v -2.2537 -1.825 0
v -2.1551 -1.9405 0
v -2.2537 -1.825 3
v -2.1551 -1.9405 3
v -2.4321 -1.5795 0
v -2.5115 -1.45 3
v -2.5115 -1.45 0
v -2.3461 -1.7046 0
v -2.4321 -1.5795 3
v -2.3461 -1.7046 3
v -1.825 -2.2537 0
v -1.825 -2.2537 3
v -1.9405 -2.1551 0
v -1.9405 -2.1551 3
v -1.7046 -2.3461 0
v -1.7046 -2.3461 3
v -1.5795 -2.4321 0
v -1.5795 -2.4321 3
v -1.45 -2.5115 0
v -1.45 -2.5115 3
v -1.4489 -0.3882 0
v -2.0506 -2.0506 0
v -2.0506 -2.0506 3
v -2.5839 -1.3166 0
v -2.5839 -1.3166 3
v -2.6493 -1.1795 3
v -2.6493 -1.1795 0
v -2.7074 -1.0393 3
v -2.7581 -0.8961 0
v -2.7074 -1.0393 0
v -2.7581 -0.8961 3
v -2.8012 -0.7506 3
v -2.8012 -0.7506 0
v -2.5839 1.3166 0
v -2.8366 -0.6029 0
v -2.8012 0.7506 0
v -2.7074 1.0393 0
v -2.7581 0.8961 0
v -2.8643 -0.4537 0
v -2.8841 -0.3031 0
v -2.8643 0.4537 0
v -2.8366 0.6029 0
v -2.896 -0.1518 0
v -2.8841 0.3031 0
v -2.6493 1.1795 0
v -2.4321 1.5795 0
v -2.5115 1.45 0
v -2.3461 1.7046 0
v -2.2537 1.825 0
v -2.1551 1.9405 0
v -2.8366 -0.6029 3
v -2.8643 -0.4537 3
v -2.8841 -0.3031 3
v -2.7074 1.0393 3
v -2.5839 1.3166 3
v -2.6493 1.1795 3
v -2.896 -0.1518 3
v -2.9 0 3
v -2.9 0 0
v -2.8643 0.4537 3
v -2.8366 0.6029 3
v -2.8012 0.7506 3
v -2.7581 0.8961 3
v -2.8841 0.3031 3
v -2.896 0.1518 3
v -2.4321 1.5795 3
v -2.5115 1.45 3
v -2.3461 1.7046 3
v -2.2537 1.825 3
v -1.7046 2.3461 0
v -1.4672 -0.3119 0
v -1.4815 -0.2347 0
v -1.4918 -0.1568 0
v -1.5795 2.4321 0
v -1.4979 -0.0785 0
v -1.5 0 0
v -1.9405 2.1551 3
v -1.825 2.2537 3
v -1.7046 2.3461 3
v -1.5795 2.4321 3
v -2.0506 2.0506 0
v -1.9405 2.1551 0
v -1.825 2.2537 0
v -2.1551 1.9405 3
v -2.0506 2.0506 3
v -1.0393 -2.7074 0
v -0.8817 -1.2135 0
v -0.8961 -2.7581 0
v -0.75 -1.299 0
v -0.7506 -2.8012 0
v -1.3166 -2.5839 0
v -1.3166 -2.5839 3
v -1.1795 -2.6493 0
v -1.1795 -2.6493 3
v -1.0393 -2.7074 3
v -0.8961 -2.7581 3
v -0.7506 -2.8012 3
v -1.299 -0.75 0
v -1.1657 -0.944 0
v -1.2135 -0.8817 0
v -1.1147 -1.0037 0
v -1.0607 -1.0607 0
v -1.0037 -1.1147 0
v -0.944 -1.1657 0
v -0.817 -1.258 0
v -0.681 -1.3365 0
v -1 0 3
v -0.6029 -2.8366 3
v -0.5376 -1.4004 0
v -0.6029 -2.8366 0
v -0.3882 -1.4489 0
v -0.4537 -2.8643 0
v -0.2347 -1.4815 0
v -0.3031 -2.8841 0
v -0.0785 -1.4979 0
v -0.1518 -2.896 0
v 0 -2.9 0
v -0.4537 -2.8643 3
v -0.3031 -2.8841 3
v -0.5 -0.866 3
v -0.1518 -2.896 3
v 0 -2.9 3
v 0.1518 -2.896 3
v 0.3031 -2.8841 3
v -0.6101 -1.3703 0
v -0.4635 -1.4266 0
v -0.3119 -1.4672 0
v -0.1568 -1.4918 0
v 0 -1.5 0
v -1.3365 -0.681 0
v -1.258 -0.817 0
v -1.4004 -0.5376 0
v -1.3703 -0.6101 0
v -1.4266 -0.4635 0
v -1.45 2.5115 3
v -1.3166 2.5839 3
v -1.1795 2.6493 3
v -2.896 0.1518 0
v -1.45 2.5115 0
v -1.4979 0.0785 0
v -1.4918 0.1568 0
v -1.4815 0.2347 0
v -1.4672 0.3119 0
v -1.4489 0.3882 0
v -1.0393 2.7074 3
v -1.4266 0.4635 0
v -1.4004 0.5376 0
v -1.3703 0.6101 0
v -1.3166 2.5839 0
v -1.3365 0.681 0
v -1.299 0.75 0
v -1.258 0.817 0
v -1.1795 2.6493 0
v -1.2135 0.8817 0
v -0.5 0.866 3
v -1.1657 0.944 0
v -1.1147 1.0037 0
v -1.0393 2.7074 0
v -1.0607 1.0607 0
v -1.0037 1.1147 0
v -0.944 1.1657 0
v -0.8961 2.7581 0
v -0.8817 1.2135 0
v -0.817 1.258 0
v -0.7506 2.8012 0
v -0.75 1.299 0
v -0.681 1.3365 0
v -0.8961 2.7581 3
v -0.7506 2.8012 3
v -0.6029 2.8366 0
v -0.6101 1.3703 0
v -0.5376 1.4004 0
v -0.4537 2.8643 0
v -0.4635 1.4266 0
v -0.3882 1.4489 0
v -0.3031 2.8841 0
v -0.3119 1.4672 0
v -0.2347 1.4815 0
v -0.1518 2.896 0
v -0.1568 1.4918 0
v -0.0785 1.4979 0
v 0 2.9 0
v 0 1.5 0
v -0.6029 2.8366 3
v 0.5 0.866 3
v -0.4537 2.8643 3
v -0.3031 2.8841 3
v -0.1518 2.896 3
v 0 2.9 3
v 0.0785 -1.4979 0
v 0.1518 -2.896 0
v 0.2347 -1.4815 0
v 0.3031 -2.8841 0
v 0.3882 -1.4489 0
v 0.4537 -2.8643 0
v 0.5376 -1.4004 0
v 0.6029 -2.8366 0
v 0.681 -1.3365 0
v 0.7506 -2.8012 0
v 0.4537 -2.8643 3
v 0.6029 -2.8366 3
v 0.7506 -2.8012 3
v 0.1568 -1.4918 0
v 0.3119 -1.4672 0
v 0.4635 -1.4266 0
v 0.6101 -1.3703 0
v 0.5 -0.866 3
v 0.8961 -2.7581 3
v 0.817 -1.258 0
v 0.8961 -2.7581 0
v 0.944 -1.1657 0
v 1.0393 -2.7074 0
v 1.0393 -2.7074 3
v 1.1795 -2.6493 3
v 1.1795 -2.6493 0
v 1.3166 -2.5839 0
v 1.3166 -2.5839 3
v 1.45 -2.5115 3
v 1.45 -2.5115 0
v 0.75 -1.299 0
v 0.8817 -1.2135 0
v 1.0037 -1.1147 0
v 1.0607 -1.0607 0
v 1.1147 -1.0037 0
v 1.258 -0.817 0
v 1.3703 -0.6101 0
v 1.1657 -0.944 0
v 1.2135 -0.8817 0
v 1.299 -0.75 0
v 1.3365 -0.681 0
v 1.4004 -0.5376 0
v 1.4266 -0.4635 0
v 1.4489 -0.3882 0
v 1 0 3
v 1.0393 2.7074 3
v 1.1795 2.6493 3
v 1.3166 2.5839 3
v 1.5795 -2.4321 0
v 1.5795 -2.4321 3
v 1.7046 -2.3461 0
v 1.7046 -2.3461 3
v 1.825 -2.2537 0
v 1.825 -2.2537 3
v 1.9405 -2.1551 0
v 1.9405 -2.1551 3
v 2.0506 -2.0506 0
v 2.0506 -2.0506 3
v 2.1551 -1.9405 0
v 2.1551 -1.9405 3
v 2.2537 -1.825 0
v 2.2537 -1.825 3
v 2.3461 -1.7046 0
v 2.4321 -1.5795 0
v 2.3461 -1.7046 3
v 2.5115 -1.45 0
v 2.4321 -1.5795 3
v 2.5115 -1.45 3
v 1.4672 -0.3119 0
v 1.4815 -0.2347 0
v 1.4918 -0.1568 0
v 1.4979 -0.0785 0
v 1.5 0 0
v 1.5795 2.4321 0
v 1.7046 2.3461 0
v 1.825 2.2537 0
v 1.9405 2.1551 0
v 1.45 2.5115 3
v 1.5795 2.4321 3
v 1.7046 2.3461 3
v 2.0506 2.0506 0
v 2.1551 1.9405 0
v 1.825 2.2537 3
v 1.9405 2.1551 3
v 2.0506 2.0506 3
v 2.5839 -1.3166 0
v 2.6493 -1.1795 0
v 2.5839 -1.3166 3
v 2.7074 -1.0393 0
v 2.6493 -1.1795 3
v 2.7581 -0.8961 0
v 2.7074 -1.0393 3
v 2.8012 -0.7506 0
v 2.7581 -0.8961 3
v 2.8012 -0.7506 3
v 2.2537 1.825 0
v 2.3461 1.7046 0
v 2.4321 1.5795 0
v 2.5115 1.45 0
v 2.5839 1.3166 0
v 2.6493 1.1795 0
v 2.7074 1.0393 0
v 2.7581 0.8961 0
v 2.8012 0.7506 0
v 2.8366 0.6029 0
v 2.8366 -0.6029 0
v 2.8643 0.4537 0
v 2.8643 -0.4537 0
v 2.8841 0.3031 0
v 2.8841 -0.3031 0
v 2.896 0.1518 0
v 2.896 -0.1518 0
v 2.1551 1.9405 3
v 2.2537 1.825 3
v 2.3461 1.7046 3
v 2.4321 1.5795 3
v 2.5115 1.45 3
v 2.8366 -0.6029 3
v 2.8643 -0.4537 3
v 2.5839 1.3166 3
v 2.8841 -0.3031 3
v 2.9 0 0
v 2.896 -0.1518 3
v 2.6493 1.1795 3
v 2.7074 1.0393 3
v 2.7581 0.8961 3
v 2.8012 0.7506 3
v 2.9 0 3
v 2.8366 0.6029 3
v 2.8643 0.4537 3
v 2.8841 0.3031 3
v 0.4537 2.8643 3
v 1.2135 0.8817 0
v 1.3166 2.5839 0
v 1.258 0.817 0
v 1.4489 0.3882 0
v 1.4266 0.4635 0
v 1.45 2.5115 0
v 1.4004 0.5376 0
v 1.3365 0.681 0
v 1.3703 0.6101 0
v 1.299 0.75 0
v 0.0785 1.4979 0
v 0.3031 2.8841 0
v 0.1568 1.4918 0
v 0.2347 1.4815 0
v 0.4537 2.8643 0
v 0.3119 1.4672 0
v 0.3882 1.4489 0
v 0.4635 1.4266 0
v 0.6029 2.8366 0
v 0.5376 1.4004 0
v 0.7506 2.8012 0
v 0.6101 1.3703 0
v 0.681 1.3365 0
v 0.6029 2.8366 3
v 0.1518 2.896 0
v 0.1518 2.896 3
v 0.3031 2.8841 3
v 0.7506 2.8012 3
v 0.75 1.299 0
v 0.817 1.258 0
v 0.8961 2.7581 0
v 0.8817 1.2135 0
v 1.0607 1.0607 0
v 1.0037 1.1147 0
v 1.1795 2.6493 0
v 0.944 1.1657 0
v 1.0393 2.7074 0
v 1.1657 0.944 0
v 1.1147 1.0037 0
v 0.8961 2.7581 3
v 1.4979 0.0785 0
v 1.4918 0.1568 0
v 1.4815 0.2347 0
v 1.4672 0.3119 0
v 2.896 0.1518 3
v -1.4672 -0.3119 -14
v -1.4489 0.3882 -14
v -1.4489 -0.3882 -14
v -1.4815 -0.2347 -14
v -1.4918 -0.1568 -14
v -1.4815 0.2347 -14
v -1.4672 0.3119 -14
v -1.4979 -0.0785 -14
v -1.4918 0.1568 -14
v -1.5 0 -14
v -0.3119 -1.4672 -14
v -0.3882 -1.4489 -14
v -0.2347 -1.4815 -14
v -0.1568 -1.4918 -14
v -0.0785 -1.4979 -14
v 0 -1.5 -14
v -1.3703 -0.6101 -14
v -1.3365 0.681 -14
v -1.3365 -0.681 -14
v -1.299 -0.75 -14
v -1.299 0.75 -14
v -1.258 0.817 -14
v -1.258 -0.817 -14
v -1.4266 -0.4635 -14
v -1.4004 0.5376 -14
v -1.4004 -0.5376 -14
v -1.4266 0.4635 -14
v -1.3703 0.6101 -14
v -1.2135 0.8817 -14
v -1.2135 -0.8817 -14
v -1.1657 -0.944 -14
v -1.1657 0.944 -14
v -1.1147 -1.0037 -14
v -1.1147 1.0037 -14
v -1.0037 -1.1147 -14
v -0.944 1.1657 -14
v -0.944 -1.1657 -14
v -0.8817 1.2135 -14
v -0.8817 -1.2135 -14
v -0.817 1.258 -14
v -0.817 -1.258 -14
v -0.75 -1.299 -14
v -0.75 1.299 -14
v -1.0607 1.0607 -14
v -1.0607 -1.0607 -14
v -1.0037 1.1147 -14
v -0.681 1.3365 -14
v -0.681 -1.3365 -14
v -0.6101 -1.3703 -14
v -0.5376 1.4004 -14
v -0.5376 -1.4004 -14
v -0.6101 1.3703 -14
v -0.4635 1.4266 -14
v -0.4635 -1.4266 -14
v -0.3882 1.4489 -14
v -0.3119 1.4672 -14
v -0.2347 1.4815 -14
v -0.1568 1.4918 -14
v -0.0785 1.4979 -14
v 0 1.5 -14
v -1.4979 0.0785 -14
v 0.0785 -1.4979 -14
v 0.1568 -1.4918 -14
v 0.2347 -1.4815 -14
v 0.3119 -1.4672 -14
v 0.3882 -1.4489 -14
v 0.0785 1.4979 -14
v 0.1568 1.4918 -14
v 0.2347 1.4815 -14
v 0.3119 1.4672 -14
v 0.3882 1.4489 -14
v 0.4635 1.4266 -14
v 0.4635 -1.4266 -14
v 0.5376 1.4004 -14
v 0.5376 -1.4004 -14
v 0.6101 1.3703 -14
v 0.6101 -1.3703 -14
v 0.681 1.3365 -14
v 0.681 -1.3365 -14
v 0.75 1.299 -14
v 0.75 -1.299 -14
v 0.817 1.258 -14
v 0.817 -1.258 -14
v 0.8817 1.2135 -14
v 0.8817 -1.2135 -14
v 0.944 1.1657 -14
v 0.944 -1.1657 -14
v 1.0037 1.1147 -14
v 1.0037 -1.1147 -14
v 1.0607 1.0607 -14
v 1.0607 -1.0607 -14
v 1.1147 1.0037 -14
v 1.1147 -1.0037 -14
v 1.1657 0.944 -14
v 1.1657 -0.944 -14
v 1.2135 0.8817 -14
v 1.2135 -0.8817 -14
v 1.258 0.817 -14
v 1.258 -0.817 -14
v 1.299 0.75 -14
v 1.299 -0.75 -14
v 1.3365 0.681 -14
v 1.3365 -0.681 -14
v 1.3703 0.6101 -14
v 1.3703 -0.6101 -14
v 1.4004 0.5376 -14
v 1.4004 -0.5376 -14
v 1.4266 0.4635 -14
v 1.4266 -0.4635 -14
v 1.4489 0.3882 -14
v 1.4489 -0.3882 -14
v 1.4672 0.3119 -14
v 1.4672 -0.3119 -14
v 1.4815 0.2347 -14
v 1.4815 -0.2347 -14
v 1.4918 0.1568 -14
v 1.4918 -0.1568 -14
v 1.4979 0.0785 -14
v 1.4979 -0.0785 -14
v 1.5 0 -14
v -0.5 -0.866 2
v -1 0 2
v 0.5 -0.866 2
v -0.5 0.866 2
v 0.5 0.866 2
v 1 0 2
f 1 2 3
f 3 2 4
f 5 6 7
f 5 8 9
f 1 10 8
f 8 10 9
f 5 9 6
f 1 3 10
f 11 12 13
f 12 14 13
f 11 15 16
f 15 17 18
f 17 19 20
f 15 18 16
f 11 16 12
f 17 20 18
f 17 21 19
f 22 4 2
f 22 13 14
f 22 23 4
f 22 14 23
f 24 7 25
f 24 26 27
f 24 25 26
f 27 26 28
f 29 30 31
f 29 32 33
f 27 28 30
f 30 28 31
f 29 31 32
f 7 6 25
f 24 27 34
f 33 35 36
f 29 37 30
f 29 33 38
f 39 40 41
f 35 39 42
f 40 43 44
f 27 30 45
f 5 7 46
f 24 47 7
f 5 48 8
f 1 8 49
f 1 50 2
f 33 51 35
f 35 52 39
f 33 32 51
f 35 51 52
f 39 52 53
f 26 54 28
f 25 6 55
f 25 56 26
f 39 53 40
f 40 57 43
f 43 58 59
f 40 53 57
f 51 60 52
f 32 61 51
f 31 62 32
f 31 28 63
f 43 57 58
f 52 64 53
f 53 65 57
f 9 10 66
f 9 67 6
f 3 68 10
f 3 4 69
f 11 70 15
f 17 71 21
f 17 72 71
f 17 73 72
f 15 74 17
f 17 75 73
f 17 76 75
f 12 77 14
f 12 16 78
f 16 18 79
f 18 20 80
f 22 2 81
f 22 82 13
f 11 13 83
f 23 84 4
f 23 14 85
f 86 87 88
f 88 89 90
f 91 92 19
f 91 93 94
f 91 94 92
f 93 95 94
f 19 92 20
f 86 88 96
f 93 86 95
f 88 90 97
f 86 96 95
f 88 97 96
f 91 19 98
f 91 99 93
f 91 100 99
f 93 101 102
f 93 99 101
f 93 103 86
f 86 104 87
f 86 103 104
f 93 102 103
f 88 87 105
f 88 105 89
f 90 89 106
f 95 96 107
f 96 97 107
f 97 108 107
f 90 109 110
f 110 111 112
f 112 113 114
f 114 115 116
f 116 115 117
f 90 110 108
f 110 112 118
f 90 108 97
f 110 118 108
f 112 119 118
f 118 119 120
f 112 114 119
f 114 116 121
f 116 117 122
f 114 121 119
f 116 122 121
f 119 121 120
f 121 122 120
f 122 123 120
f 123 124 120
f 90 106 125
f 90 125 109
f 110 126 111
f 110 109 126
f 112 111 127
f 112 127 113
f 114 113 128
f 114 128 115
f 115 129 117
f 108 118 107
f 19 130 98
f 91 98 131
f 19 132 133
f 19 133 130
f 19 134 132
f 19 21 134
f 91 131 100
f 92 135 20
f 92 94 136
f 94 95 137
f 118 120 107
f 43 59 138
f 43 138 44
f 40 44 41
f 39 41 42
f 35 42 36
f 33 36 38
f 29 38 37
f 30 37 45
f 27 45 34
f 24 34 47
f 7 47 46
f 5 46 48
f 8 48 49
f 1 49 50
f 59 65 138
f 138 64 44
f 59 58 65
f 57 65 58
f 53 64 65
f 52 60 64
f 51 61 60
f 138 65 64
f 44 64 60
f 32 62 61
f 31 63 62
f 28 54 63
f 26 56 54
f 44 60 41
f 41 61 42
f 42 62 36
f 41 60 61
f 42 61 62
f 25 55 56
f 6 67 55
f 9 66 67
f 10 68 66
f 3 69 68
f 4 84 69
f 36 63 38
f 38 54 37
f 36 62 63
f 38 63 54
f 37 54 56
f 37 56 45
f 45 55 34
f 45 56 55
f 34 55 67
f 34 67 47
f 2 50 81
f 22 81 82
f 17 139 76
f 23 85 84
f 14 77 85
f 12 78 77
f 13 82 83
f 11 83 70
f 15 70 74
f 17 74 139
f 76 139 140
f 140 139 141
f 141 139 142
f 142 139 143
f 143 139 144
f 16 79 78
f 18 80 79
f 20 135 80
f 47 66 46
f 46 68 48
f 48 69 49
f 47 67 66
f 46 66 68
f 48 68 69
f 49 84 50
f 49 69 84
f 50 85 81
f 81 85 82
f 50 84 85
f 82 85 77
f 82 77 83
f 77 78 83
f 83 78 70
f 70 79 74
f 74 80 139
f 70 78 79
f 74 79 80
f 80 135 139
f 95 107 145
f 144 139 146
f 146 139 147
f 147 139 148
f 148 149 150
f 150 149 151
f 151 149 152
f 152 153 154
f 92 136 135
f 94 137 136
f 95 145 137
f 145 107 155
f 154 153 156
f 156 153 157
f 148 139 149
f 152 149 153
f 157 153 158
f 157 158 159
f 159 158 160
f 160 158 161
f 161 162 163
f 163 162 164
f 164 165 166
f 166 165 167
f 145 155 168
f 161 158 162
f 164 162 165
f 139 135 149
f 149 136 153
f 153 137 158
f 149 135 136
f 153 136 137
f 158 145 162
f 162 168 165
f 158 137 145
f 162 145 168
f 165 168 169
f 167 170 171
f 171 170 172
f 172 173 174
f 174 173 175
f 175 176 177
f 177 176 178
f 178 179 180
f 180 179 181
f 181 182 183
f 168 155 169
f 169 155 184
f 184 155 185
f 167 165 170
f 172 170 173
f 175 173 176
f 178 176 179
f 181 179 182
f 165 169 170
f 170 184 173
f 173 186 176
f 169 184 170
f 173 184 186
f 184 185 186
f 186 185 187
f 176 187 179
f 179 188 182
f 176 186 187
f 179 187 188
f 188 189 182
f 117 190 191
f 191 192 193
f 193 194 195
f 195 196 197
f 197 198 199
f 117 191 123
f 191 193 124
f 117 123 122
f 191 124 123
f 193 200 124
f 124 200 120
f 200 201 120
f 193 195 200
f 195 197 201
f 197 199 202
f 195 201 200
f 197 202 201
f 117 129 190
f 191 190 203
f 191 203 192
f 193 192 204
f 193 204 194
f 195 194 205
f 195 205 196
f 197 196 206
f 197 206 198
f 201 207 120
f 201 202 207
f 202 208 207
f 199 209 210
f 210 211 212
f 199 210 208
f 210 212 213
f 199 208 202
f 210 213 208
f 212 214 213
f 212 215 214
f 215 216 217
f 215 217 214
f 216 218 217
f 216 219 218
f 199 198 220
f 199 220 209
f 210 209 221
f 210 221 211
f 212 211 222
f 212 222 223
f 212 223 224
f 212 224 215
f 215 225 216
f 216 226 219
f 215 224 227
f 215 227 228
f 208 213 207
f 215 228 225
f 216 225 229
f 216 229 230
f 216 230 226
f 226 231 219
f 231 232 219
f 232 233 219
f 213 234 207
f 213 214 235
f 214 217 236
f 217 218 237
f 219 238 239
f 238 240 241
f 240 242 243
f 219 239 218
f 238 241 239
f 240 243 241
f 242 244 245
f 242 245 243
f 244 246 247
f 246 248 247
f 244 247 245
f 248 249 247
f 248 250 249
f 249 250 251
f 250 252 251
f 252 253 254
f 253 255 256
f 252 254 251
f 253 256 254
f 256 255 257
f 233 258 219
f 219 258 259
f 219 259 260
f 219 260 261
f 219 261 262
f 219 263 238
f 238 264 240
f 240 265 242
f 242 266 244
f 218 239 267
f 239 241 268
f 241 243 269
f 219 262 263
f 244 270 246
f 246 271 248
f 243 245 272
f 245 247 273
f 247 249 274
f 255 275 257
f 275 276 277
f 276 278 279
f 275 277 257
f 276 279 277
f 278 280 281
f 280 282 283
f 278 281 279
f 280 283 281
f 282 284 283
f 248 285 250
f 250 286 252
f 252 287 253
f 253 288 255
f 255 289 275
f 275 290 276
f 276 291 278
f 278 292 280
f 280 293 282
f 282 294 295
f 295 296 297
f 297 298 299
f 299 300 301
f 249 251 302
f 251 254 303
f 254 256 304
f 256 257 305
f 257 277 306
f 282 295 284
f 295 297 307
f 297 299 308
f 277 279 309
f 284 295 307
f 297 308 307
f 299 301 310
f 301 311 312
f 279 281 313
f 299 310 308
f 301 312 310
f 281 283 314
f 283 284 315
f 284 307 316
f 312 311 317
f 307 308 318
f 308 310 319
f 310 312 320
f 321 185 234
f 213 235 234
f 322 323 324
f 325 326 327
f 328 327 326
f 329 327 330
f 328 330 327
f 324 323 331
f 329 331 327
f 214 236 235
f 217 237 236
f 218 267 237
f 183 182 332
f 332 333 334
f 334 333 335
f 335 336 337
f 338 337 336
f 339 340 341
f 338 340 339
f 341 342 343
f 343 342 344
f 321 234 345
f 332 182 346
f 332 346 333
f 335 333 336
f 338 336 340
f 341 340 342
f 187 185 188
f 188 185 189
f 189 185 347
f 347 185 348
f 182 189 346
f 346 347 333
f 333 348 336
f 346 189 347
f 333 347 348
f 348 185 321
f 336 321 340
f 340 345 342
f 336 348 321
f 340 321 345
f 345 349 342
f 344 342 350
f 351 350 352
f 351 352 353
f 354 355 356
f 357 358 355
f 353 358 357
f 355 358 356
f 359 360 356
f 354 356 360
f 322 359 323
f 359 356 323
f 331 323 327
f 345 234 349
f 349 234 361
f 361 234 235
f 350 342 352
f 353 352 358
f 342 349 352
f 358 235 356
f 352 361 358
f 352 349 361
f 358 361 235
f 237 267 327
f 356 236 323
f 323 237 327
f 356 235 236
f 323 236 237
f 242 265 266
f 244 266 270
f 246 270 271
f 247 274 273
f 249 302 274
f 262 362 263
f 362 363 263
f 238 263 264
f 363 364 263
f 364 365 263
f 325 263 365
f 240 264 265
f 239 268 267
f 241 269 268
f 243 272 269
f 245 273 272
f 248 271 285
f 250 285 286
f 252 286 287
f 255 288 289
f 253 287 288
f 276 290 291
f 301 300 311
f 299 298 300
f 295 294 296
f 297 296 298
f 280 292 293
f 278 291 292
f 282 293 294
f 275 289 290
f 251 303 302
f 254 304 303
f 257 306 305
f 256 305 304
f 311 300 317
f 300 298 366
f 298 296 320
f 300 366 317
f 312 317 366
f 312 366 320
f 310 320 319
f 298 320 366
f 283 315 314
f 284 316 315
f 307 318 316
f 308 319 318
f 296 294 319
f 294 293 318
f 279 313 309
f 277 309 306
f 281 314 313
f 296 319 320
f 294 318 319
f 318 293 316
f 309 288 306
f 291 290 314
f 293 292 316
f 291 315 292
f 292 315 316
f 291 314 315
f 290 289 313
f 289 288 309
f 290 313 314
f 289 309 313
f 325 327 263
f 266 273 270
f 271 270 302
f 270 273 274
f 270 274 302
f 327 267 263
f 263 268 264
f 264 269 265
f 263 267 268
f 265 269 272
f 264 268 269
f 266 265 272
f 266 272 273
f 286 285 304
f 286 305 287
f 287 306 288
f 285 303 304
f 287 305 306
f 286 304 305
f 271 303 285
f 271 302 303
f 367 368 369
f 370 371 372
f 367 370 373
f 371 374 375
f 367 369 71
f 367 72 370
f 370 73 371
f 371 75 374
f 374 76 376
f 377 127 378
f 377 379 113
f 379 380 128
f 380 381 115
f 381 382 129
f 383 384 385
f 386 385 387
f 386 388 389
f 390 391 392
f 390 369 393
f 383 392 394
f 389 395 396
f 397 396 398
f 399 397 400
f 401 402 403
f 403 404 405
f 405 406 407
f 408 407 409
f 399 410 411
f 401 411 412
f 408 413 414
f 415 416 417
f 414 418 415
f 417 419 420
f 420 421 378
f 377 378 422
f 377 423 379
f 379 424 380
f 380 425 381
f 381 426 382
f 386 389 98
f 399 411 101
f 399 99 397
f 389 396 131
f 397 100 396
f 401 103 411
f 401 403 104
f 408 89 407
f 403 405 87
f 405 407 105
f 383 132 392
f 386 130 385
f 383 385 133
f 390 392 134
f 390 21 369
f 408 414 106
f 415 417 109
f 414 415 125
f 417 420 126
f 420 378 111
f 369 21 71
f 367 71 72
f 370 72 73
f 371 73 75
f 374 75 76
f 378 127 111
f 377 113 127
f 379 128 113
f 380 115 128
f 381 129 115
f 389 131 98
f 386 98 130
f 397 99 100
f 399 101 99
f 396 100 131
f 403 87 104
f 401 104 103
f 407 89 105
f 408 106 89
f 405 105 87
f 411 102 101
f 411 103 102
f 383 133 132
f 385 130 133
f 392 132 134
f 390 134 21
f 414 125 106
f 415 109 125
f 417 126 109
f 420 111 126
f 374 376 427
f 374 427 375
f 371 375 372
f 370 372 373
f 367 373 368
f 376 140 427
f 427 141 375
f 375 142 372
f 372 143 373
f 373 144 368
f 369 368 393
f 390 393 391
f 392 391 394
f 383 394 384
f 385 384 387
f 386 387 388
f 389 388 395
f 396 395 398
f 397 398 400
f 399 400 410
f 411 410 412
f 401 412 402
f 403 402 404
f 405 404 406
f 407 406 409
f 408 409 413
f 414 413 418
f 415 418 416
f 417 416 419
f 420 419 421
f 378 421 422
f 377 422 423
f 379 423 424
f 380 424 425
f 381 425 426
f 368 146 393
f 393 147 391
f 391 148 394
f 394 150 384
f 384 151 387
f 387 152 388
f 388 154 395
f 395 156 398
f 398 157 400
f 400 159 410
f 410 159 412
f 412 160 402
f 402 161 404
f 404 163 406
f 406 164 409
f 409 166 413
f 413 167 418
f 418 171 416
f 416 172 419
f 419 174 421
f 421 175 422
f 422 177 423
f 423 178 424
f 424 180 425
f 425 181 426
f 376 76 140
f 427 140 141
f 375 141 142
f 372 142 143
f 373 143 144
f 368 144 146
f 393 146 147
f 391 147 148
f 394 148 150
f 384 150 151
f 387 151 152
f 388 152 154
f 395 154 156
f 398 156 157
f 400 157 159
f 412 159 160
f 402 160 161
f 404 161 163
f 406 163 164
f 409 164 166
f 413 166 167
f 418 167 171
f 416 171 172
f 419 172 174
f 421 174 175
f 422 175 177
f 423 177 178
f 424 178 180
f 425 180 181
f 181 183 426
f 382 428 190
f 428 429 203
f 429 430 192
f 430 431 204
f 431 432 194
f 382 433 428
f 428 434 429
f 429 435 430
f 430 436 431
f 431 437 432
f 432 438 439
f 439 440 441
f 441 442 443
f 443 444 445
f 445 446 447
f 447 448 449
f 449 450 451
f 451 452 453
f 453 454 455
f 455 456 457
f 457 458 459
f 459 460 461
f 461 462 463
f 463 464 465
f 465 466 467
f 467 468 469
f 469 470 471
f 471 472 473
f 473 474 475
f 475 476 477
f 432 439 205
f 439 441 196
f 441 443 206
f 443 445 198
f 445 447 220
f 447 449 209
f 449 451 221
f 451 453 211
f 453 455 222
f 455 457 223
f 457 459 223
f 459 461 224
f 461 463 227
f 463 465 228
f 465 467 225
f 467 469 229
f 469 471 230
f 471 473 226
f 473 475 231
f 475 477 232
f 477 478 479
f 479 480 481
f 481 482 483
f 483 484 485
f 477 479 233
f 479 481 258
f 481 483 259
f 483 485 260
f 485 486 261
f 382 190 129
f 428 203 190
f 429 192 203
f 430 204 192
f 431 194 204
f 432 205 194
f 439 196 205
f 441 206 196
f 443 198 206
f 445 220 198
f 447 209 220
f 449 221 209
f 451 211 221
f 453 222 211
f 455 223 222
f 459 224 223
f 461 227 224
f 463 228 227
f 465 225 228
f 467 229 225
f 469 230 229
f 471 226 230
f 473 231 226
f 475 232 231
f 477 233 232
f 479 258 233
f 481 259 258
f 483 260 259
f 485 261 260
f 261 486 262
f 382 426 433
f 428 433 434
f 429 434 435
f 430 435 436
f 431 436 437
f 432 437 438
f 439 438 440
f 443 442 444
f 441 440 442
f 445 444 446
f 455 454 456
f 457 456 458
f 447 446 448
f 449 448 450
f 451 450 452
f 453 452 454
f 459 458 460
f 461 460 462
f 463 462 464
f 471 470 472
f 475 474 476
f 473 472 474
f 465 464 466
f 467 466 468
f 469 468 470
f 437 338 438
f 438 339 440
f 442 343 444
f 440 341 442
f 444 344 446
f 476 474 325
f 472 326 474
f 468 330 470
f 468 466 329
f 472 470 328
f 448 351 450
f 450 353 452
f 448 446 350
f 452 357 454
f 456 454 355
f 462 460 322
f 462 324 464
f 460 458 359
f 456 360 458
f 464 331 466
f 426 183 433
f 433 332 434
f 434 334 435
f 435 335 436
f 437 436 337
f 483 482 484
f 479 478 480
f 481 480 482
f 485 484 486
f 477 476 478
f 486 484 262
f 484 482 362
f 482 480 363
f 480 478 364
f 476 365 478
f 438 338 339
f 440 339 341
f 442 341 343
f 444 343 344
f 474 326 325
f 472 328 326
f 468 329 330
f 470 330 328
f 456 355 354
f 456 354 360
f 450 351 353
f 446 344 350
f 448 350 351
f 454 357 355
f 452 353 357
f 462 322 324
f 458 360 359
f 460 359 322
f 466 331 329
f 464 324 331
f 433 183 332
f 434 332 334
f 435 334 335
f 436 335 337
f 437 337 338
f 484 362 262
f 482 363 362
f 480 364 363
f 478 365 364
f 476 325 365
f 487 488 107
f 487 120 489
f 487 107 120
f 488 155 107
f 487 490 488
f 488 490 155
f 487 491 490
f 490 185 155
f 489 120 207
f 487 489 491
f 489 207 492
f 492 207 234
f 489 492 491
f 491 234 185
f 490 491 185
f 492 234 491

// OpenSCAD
// file: C:/od/OneDrive/Documents/ChatGPT/oomlout_oobb_part_motor_gearbox_wave_drive_version_5/parts/oobb_part_motor_gearbox_wave_drive_version_5_20_to_1_reduction/compact_helpers.scad
// Reusable native geometry helpers.
function polar(r,a)=[r*cos(a),r*sin(a)];
function rotate_point(p,a)=[p[0]*cos(a)-p[1]*sin(a),p[0]*sin(a)+p[1]*cos(a)];
function profile_point(t)=let(
    s=sqrt(pow(pitch_radius,2)-pow(eccentricity*sin(cavity_count*t),2)),
    r=eccentricity*cos(cavity_count*t)+s,
    xi=atan2(eccentricity*cavity_count*sin(cavity_count*t),s),
    rr=roller_radius+profile_clearance)
    [r*cos(t)+rr*cos(t+xi),r*sin(t)+rr*sin(t+xi)];
function profile_points(upper=false)=[for(i=[0:cavity_count*profile_samples_per_cavity-1])
    rotate_point(profile_point(360*i/(cavity_count*profile_samples_per_cavity)),0)];
function roller_position(i,a,upper=false)=let(
    t=-a/roller_count+360*i/roller_count,
    rel=t-a-(upper?180:0),
    r=eccentricity*cos(rel)+sqrt(pow(pitch_radius,2)-pow(eccentricity*sin(rel),2))) polar(r,t);
module tube(ro,ri,h) { difference() { cylinder(r=ro,h=h); translate([0,0,-eps]) cylinder(r=ri,h=h+2*eps); } }
module screw_hole(size,h) { scale([1,1,h]) { if(size=="m2") oobb_hole_m2(); if(size=="m3") oobb_hole_m3(); if(size=="m6") oobb_hole_m6(); } }
module socket_recess(size,depth) {
    // OOBB socket head starts at the under-head plane and extends outward.
    scale([1,1,depth/(size=="m3"?3.2:2.2)]) {
        if(size=="m3") oobb_socket_m3(); else oobb_socket_m2();
    }
}
module at_mounts(points) { for(p=points) translate([p[0],p[1],0]) children(); }
module shaft_cut(h,fit=shaft_fit_clearance) {
    linear_extrude(h) intersection() {
        circle(r=input_shaft_diameter/2+fit);
        translate([-10,-10]) square([10+input_shaft_diameter/2-input_shaft_flat_depth+fit,20]);
    }
}
module rounded_rectangle_plate(size=[119,119,3],radius=1.5) {
    hull() for(x=[-1,1],y=[-1,1]) translate([x*(size[0]/2-radius),y*(size[1]/2-radius),0]) cylinder(r=radius,h=size[2]);
}
module grid_cuts(h) {
    // Actual OOBB grid centres: six units are centred on half-pitch offsets.
    for(i=[0:base_width-1],j=[0:base_height-1])
        let(x=(i-(base_width-1)/2)*oobb_grid_pitch,y=(j-(base_height-1)/2)*oobb_grid_pitch)
        if(sqrt(x*x+y*y)>housing_radius+3.5)
            translate([x,y,-eps]) screw_hole("m6",h+2*eps);
}
module wave_generator() {
    render(convexity=20) difference() {
        tube(wave_radius,12.6,wave_height);
        translate([0,0,wave_seat_z]) cylinder(r=13.5+bearing_seat_clearance,h=wave_height);
        translate([0,0,wave_height-wave_cap_depth]) cylinder(r=22.15,h=wave_cap_depth+eps);
        at_mounts(wave_mounts) {
            translate([0,0,-eps]) screw_hole("m3",wave_height+2*eps);
            translate([0,0,wave_nut_z]) scale([1,1,(wave_height-wave_cap_depth-wave_nut_z+eps)/2.7]) oobb_nut_m3();
        }
    }
}
module wave_cap() {
    render(convexity=20) difference() {
        tube(22,12.6,wave_cap_depth);
        at_mounts(wave_mounts) {
            translate([0,0,-eps]) screw_hole("m3",wave_cap_depth+2*eps);
            translate([0,0,wave_cap_depth-wave_head_recess]) socket_recess("m3",wave_head_recess+eps);
        }
    }
}
// file: C:/od/OneDrive/Documents/ChatGPT/oomlout_oobb_part_motor_gearbox_wave_drive_version_5/parts/oobb_part_motor_gearbox_wave_drive_version_5_20_to_1_reduction/oobb_hardware.scad
module oobb_rounded_rectangle_edges(size, radius, radius_top, radius_bottom) {
      rt=radius_top; rb=radius_bottom; depth=size[2]; n=16;
      lower=rb==0 ? [[radius,0]] :
        [for(i=[0:n]) let(a=-90+90*i/n) [radius-rb+rb*cos(a),rb+rb*sin(a)]];
      upper=rt==0 ? [[radius,depth]] :
        [for(i=[0:n]) let(a=90*i/n) [radius-rt+rt*cos(a),depth-rt+rt*sin(a)]];
      hull() for(x=[-size[0]/2+radius,size[0]/2-radius])
        for(y=[-size[1]/2+radius,size[1]/2-radius])
          translate([x,y,0]) rotate_extrude()
            polygon(concat([[0,0]],lower,upper,[[0,depth]]));
    }
// Generated from installed OOBB v5. All primitives use overhang=True.

module oobb_motor_plate_body() {


difference() {
	union() {
		translate(v = [0, 0, 0]) {
			rotate(a = [0, 0, 0]) {
				difference() {
					union() {
						oobb_rounded_rectangle_edges(radius = 1.5, radius_bottom = 1.5, radius_top = 1.5, size = [89.0, 89.0, 4.0]);
					}
					union();
				}
			}
		}
	}
	union();
}

}

module oobb_hole_m2() {


difference() {
	union() {
		cylinder(h = 1, r = 1.35);
	}
	union();
}

}

module oobb_hole_m3() {


difference() {
	union() {
		cylinder(h = 1, r = 1.8);
	}
	union();
}

}

module oobb_hole_m6() {


difference() {
	union() {
		cylinder(h = 1, r = 3.25);
	}
	union();
}

}

module oobb_nut_m2() {


difference() {
	union() {
		translate(v = [0, 0, 0]) {
			rotate(a = [0, 0, 0]) {
				difference() {
					union() {
						linear_extrude(height = 2.2) {
							polygon(points = [[2.4234, 0.0], [1.2117000000000002, 2.0987259635312085], [-1.2116999999999996, 2.0987259635312085], [-2.4234, 2.967809053053696e-16], [-1.211700000000001, -2.098725963531208], [1.2116999999999984, -2.0987259635312094]]);
						}
						translate(v = [-1.25, -2.75, -0.3]) {
							cube(size = [2.5, 5.5, 0.3]);
						}
						translate(v = [-1.25, -1.25, -0.6]) {
							cube(size = [2.5, 2.5, 0.3]);
						}
						translate(v = [-1.25, -2.75, 2.2]) {
							cube(size = [2.5, 5.5, 0.3]);
						}
						translate(v = [-1.25, -1.25, 2.5]) {
							cube(size = [2.5, 2.5, 0.3]);
						}
					}
					union();
				}
			}
		}
	}
	union();
}

}

module oobb_socket_m2() {


difference() {
	union() {
		translate(v = [0, 0, 0]) {
			rotate(a = [0, 0, 0]) {
				difference() {
					union() {
						cylinder(h = 2.2, r = 2.1);
						translate(v = [-1.25, -2.75, -0.3]) {
							cube(size = [2.5, 5.5, 0.3]);
						}
						translate(v = [-1.25, -1.25, -0.6]) {
							cube(size = [2.5, 2.5, 0.3]);
						}
					}
					union();
				}
			}
		}
	}
	union();
}

}

module oobb_nut_m3() {


difference() {
	union() {
		translate(v = [0, 0, 0]) {
			rotate(a = [0, 0, 0]) {
				difference() {
					union() {
						linear_extrude(height = 2.7) {
							polygon(points = [[3.4619999999999997, 0.0], [1.7310000000000003, 2.9981799479017264], [-1.7309999999999992, 2.9981799479017264], [-3.4619999999999997, 4.2397272186481365e-16], [-1.7310000000000014, -2.998179947901726], [1.7309999999999977, -2.9981799479017277]]);
						}
						translate(v = [-1.75, -3.25, -0.3]) {
							cube(size = [3.5, 6.5, 0.3]);
						}
						translate(v = [-1.75, -1.75, -0.6]) {
							cube(size = [3.5, 3.5, 0.3]);
						}
						translate(v = [-1.75, -3.25, 2.7]) {
							cube(size = [3.5, 6.5, 0.3]);
						}
						translate(v = [-1.75, -1.75, 3.0]) {
							cube(size = [3.5, 3.5, 0.3]);
						}
					}
					union();
				}
			}
		}
	}
	union();
}

}

module oobb_socket_m3() {


difference() {
	union() {
		translate(v = [0, 0, 0]) {
			rotate(a = [0, 0, 0]) {
				difference() {
					union() {
						cylinder(h = 3.2, r = 3.0);
						translate(v = [-1.75, -3.25, -0.3]) {
							cube(size = [3.5, 6.5, 0.3]);
						}
						translate(v = [-1.75, -1.75, -0.6]) {
							cube(size = [3.5, 3.5, 0.3]);
						}
					}
					union();
				}
			}
		}
	}
	union();
}

}

module oobb_nut_m6() {


difference() {
	union() {
		translate(v = [0, 0, 0]) {
			rotate(a = [0, 0, 0]) {
				difference() {
					union() {
						linear_extrude(height = 5.2) {
							polygon(points = [[5.914249999999999, 0.0], [2.957125, 5.1218907443321156], [-2.9571249999999982, 5.1218907443321156], [-5.914249999999999, 7.242867331857232e-16], [-2.9571250000000022, -5.121890744332115], [2.9571249999999956, -5.121890744332118]]);
						}
						translate(v = [-2.875, -5.0, -0.3]) {
							cube(size = [5.75, 10, 0.3]);
						}
						translate(v = [-2.875, -2.875, -0.6]) {
							cube(size = [5.75, 5.75, 0.3]);
						}
						translate(v = [-2.875, -5.0, 5.2]) {
							cube(size = [5.75, 10, 0.3]);
						}
						translate(v = [-2.875, -2.875, 5.5]) {
							cube(size = [5.75, 5.75, 0.3]);
						}
					}
					union();
				}
			}
		}
	}
	union();
}

}
// file: C:/od/OneDrive/Documents/ChatGPT/oomlout_oobb_part_motor_gearbox_wave_drive_version_5/parts/oobb_part_motor_gearbox_wave_drive_version_5_20_to_1_reduction/parameters.scad
// Generated by working_scad.py. Edit the Python recipe to persist changes.
style = "version_5";
reduction = 12;
bearing_output = "6810";
bearing_wave = "6704";
roller_diameter = 7.0;
roller_bore_diameter = 3.2;
roller_length = 12.0;
roller_material = "nylon";
roller_bank_count = 1;
motor_plate_depth = 4.0;
motor_body_depth = 40.0;
motor_shaft_length = 24.0;
motor_hole_pitch = 31.0;
motor_thread_depth = 6.0;
motor_pilot_diameter = 22.0;
motor_pilot_height = 2.0;
output_holder_wall = 7.0;
max_screw_length = 35.0;
eccentricity = 0.75;
wave_radius = 23.25;
profile_clearance = 0.15;
roller_slot_clearance = 0.3;
roller_end_clearance = 0.3;
cage_wall = 4.0;
cage_plate_depth = 3.0;
bearing_seat_clearance = 0.1;
journal_clearance = 0.05;
bearing_axial_clearance = 0.2;
output_plate_diameter = 65.0;
output_plate_depth = 6.0;
output_grid_pitch = 15.0;
output_face_clearance = 0.3;
output_socket_recess = 4.0;
output_screw_length = 16;
output_nut_depth = 5.2;
output_nut_height = 5.0;
motor_shaft_end_clearance = 0.5;
base_width = 6;
base_height = 6;
oobb_grid_pitch = 15.0;
oobb_size_allowance = 1.0;
base_edge_radius = 1.5;
housing_flange_corner_radius = 1.5;
housing_screw_pitch_radius = 35.5;
housing_screw_count = 6;
input_shaft_diameter = 5.0;
input_shaft_flat_depth = 0.5;
shaft_fit_clearance = 0.1;
cage_screw_count = 4;
profile_samples_per_cavity = 100;
circle_fragments = 120;
overhang = true;
run_scad = true;
run_solidcraft = false;
generate_stl = true;
generate_previews = true;
generate_renders = true;
validate_geometry = true;
package_outputs = true;
render_threads = 8;
variant = "default";
// main file
include <C:/od/OneDrive/Documents/ChatGPT/oomlout_oobb_part_motor_gearbox_wave_drive_version_5/parts/oobb_part_motor_gearbox_wave_drive_version_5_20_to_1_reduction/parameters.scad>
include <C:/od/OneDrive/Documents/ChatGPT/oomlout_oobb_part_motor_gearbox_wave_drive_version_5/parts/oobb_part_motor_gearbox_wave_drive_version_5_20_to_1_reduction/oobb_hardware.scad>
include <C:/od/OneDrive/Documents/ChatGPT/oomlout_oobb_part_motor_gearbox_wave_drive_version_5/parts/oobb_part_motor_gearbox_wave_drive_version_5_20_to_1_reduction/geometry.scad>
difference() { difference() {
	union() {
		translate(v = [0, 0, 0]) {
			rotate(a = [0, 0, 0]) {
				difference() {
					union() {
						cylinder(h = 3, r = 2.9);
						translate(v = [0, 0, -14.0]) {
							cylinder(h = 14, r = 1.5);
						}
					}
					union();
				}
			}
		}
	}
	union();
}
 translate([0,0,2]) cylinder(r=1.0,h=1.01,$fn=6); }
